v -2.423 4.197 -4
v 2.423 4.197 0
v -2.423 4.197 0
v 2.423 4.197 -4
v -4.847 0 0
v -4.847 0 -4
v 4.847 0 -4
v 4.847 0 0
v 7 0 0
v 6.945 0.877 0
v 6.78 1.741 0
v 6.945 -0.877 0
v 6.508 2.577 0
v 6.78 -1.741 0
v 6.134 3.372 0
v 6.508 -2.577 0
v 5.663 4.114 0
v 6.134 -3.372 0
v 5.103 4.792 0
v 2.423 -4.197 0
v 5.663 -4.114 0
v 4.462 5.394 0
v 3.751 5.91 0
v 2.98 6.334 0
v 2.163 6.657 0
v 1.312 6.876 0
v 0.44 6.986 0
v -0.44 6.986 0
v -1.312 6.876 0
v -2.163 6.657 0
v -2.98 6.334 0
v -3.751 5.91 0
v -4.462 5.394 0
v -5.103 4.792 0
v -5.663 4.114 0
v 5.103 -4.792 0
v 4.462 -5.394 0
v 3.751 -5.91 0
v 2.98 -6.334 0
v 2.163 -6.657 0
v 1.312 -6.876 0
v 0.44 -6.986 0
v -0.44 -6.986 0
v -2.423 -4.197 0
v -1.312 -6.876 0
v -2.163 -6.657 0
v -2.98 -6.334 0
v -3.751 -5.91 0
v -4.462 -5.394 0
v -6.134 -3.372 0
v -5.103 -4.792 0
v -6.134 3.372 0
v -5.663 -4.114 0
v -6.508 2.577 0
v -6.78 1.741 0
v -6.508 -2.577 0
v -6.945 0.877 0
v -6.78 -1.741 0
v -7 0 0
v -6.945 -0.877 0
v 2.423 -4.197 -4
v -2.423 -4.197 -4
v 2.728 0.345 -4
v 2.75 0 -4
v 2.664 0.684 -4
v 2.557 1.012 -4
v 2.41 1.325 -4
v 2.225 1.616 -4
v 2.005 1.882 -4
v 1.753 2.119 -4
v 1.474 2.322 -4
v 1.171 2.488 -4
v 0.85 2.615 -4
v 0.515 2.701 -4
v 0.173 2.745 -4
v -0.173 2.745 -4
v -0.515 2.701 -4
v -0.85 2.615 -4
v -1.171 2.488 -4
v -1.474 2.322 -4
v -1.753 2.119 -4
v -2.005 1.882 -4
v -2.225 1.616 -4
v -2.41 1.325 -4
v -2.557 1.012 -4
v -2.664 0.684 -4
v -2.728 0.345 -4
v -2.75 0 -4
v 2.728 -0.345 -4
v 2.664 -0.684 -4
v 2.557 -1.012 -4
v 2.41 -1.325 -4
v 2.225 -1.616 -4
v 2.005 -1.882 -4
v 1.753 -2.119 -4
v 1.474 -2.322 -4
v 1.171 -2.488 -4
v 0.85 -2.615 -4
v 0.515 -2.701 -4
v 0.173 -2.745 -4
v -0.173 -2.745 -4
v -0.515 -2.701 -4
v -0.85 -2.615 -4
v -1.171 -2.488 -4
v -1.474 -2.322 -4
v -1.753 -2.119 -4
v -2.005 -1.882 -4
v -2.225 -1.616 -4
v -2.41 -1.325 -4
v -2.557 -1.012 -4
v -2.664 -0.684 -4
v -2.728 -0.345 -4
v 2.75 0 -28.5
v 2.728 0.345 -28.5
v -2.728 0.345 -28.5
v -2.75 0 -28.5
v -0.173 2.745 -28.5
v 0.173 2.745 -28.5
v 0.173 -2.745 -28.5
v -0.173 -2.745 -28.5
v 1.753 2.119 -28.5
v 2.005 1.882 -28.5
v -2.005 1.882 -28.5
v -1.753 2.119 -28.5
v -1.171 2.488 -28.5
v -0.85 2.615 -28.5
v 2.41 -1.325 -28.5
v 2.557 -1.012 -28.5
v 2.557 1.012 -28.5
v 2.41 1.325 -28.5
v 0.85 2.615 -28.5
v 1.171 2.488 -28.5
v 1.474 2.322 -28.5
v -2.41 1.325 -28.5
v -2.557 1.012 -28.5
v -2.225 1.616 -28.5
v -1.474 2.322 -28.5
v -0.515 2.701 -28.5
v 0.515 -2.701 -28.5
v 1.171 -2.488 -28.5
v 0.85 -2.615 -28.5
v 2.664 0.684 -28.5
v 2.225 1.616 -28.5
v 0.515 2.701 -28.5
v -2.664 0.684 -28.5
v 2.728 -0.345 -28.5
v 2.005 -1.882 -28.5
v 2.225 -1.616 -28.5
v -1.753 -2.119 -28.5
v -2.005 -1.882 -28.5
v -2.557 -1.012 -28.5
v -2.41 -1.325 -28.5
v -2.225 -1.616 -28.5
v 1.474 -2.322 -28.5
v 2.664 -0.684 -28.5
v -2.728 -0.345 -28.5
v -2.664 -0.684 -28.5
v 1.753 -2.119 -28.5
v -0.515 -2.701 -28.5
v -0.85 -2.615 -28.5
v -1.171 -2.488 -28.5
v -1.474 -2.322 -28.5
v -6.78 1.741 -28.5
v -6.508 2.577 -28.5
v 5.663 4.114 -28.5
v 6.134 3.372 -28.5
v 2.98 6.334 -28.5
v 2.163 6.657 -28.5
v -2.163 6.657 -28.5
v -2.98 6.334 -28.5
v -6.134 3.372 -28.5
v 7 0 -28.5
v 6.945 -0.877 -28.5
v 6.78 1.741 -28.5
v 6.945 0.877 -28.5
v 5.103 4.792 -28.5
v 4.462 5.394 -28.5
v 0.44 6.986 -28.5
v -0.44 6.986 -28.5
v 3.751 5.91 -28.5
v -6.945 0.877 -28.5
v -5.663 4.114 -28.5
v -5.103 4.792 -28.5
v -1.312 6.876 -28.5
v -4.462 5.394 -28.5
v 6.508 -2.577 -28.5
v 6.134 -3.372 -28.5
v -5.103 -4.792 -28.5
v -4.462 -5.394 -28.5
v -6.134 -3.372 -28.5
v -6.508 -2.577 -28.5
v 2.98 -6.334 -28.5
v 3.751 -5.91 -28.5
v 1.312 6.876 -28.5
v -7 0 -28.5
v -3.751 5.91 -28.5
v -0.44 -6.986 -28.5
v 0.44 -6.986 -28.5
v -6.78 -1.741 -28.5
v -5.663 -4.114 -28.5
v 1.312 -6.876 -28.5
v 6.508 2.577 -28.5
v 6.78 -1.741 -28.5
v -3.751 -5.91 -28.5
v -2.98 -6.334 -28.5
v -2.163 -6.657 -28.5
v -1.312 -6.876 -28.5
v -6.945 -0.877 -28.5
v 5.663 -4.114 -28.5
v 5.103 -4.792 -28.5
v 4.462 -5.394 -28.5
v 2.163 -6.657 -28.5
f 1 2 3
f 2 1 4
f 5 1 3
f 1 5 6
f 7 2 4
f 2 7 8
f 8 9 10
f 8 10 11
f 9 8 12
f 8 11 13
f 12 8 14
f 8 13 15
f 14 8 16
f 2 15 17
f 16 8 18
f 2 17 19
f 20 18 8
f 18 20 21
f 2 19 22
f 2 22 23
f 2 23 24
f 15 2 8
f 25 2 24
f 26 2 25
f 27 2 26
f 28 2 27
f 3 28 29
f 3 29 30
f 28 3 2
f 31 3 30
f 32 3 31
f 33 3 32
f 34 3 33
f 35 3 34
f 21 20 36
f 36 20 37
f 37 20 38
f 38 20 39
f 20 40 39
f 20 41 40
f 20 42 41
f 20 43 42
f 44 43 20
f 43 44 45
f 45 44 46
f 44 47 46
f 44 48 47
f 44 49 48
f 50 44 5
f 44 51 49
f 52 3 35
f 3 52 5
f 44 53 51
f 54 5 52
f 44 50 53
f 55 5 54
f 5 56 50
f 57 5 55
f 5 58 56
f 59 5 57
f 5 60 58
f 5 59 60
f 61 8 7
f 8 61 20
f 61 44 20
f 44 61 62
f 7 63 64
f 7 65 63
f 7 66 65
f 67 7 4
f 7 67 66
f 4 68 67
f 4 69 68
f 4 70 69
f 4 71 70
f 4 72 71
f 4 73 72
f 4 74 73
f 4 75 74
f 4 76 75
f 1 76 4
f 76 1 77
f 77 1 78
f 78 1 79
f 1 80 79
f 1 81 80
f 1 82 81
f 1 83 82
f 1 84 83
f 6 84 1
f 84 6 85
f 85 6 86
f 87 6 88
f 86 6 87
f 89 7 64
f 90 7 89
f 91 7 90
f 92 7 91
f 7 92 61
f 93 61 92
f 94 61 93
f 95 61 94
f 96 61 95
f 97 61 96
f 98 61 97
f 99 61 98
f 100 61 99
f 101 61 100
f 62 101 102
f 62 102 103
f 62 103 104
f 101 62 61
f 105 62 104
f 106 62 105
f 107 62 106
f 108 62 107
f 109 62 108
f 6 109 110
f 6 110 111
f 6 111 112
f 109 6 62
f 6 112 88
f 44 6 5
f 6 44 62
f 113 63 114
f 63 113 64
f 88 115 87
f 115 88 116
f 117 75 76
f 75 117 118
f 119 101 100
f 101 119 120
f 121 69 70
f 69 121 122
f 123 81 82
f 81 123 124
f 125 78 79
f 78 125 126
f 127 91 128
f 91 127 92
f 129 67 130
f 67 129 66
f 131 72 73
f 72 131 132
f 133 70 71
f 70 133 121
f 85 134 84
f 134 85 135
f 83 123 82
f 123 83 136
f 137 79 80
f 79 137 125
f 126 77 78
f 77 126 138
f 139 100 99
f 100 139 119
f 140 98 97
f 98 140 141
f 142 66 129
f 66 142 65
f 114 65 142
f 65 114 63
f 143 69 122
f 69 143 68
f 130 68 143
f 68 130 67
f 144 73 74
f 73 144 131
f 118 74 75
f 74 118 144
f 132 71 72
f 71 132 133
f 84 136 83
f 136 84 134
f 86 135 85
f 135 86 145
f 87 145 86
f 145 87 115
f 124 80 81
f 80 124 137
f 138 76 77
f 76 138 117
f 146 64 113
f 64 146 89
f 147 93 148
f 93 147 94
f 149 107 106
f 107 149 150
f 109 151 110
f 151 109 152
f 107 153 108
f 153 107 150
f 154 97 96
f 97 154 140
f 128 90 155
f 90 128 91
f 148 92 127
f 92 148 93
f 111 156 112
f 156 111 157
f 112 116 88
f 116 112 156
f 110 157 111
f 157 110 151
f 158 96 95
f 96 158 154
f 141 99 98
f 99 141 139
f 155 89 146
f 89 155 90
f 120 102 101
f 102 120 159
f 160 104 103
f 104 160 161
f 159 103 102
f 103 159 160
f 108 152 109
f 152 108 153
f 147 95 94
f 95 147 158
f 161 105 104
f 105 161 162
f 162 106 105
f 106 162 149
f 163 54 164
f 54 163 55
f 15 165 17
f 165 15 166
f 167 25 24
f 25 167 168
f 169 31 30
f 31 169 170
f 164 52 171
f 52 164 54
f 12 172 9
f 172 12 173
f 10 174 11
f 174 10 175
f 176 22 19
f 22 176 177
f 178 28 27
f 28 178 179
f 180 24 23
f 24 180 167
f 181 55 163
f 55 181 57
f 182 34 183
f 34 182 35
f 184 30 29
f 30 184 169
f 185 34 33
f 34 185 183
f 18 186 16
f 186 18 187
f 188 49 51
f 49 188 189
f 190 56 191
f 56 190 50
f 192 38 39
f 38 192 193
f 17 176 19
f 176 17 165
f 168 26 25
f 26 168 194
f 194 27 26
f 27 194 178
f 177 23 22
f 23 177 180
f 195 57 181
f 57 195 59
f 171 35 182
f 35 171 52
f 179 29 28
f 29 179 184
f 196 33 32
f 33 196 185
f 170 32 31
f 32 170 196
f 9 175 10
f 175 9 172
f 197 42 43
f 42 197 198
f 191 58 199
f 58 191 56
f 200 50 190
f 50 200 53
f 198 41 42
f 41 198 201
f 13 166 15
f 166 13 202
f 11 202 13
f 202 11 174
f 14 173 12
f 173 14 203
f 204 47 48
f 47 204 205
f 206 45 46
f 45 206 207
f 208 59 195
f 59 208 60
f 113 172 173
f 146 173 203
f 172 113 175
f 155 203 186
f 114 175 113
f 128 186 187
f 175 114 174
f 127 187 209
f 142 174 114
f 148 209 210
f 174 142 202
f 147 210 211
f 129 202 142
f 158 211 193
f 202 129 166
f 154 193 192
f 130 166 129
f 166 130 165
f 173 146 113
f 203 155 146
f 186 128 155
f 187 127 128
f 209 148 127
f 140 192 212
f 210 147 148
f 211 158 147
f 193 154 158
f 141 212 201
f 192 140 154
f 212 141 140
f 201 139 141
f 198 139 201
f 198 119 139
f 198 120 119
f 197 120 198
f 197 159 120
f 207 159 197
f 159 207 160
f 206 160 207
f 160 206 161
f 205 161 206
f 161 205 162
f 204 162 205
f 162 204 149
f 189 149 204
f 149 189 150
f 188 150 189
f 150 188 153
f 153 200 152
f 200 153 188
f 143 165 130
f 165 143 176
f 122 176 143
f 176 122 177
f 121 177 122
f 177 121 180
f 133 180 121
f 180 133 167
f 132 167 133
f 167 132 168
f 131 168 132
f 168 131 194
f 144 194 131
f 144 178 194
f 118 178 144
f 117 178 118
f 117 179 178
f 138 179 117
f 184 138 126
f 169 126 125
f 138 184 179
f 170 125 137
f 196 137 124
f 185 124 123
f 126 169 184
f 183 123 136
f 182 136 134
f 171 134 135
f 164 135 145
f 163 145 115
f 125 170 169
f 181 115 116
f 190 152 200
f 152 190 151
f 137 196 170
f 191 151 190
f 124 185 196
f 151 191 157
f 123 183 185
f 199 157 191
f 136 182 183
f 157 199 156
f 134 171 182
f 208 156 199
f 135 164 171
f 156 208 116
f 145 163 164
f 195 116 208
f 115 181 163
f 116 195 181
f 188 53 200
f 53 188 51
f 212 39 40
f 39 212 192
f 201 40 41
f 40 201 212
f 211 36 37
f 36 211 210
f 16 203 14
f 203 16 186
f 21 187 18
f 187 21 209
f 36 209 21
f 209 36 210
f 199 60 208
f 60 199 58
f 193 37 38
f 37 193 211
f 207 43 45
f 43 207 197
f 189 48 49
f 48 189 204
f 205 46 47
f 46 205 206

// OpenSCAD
$fn = 50;

difference() {
	union() {
		translate(v = [0, 0, -28.5]) {
			cylinder(h = 28.5, r = 7.0);
		}
	}
	union() {
		translate(v = [0, 0, 0]) {
			rotate(a = [0, 0, 0]) {
				difference() {
					union() {
						translate(v = [0, 0, -4]) {
							linear_extrude(height = 4) {
								polygon(points = [[4.8468, 0.0], [2.4234000000000004, 4.197451927062417], [-2.423399999999999, 4.197451927062417], [-4.8468, 5.935618106107392e-16], [-2.423400000000002, -4.197451927062416], [2.423399999999997, -4.197451927062419]]);
							}
						}
					}
					union();
				}
			}
		}
		#translate(v = [0, 0, -100.0]) {
			cylinder(h = 200, r = 2.75);
		}
	}
}
